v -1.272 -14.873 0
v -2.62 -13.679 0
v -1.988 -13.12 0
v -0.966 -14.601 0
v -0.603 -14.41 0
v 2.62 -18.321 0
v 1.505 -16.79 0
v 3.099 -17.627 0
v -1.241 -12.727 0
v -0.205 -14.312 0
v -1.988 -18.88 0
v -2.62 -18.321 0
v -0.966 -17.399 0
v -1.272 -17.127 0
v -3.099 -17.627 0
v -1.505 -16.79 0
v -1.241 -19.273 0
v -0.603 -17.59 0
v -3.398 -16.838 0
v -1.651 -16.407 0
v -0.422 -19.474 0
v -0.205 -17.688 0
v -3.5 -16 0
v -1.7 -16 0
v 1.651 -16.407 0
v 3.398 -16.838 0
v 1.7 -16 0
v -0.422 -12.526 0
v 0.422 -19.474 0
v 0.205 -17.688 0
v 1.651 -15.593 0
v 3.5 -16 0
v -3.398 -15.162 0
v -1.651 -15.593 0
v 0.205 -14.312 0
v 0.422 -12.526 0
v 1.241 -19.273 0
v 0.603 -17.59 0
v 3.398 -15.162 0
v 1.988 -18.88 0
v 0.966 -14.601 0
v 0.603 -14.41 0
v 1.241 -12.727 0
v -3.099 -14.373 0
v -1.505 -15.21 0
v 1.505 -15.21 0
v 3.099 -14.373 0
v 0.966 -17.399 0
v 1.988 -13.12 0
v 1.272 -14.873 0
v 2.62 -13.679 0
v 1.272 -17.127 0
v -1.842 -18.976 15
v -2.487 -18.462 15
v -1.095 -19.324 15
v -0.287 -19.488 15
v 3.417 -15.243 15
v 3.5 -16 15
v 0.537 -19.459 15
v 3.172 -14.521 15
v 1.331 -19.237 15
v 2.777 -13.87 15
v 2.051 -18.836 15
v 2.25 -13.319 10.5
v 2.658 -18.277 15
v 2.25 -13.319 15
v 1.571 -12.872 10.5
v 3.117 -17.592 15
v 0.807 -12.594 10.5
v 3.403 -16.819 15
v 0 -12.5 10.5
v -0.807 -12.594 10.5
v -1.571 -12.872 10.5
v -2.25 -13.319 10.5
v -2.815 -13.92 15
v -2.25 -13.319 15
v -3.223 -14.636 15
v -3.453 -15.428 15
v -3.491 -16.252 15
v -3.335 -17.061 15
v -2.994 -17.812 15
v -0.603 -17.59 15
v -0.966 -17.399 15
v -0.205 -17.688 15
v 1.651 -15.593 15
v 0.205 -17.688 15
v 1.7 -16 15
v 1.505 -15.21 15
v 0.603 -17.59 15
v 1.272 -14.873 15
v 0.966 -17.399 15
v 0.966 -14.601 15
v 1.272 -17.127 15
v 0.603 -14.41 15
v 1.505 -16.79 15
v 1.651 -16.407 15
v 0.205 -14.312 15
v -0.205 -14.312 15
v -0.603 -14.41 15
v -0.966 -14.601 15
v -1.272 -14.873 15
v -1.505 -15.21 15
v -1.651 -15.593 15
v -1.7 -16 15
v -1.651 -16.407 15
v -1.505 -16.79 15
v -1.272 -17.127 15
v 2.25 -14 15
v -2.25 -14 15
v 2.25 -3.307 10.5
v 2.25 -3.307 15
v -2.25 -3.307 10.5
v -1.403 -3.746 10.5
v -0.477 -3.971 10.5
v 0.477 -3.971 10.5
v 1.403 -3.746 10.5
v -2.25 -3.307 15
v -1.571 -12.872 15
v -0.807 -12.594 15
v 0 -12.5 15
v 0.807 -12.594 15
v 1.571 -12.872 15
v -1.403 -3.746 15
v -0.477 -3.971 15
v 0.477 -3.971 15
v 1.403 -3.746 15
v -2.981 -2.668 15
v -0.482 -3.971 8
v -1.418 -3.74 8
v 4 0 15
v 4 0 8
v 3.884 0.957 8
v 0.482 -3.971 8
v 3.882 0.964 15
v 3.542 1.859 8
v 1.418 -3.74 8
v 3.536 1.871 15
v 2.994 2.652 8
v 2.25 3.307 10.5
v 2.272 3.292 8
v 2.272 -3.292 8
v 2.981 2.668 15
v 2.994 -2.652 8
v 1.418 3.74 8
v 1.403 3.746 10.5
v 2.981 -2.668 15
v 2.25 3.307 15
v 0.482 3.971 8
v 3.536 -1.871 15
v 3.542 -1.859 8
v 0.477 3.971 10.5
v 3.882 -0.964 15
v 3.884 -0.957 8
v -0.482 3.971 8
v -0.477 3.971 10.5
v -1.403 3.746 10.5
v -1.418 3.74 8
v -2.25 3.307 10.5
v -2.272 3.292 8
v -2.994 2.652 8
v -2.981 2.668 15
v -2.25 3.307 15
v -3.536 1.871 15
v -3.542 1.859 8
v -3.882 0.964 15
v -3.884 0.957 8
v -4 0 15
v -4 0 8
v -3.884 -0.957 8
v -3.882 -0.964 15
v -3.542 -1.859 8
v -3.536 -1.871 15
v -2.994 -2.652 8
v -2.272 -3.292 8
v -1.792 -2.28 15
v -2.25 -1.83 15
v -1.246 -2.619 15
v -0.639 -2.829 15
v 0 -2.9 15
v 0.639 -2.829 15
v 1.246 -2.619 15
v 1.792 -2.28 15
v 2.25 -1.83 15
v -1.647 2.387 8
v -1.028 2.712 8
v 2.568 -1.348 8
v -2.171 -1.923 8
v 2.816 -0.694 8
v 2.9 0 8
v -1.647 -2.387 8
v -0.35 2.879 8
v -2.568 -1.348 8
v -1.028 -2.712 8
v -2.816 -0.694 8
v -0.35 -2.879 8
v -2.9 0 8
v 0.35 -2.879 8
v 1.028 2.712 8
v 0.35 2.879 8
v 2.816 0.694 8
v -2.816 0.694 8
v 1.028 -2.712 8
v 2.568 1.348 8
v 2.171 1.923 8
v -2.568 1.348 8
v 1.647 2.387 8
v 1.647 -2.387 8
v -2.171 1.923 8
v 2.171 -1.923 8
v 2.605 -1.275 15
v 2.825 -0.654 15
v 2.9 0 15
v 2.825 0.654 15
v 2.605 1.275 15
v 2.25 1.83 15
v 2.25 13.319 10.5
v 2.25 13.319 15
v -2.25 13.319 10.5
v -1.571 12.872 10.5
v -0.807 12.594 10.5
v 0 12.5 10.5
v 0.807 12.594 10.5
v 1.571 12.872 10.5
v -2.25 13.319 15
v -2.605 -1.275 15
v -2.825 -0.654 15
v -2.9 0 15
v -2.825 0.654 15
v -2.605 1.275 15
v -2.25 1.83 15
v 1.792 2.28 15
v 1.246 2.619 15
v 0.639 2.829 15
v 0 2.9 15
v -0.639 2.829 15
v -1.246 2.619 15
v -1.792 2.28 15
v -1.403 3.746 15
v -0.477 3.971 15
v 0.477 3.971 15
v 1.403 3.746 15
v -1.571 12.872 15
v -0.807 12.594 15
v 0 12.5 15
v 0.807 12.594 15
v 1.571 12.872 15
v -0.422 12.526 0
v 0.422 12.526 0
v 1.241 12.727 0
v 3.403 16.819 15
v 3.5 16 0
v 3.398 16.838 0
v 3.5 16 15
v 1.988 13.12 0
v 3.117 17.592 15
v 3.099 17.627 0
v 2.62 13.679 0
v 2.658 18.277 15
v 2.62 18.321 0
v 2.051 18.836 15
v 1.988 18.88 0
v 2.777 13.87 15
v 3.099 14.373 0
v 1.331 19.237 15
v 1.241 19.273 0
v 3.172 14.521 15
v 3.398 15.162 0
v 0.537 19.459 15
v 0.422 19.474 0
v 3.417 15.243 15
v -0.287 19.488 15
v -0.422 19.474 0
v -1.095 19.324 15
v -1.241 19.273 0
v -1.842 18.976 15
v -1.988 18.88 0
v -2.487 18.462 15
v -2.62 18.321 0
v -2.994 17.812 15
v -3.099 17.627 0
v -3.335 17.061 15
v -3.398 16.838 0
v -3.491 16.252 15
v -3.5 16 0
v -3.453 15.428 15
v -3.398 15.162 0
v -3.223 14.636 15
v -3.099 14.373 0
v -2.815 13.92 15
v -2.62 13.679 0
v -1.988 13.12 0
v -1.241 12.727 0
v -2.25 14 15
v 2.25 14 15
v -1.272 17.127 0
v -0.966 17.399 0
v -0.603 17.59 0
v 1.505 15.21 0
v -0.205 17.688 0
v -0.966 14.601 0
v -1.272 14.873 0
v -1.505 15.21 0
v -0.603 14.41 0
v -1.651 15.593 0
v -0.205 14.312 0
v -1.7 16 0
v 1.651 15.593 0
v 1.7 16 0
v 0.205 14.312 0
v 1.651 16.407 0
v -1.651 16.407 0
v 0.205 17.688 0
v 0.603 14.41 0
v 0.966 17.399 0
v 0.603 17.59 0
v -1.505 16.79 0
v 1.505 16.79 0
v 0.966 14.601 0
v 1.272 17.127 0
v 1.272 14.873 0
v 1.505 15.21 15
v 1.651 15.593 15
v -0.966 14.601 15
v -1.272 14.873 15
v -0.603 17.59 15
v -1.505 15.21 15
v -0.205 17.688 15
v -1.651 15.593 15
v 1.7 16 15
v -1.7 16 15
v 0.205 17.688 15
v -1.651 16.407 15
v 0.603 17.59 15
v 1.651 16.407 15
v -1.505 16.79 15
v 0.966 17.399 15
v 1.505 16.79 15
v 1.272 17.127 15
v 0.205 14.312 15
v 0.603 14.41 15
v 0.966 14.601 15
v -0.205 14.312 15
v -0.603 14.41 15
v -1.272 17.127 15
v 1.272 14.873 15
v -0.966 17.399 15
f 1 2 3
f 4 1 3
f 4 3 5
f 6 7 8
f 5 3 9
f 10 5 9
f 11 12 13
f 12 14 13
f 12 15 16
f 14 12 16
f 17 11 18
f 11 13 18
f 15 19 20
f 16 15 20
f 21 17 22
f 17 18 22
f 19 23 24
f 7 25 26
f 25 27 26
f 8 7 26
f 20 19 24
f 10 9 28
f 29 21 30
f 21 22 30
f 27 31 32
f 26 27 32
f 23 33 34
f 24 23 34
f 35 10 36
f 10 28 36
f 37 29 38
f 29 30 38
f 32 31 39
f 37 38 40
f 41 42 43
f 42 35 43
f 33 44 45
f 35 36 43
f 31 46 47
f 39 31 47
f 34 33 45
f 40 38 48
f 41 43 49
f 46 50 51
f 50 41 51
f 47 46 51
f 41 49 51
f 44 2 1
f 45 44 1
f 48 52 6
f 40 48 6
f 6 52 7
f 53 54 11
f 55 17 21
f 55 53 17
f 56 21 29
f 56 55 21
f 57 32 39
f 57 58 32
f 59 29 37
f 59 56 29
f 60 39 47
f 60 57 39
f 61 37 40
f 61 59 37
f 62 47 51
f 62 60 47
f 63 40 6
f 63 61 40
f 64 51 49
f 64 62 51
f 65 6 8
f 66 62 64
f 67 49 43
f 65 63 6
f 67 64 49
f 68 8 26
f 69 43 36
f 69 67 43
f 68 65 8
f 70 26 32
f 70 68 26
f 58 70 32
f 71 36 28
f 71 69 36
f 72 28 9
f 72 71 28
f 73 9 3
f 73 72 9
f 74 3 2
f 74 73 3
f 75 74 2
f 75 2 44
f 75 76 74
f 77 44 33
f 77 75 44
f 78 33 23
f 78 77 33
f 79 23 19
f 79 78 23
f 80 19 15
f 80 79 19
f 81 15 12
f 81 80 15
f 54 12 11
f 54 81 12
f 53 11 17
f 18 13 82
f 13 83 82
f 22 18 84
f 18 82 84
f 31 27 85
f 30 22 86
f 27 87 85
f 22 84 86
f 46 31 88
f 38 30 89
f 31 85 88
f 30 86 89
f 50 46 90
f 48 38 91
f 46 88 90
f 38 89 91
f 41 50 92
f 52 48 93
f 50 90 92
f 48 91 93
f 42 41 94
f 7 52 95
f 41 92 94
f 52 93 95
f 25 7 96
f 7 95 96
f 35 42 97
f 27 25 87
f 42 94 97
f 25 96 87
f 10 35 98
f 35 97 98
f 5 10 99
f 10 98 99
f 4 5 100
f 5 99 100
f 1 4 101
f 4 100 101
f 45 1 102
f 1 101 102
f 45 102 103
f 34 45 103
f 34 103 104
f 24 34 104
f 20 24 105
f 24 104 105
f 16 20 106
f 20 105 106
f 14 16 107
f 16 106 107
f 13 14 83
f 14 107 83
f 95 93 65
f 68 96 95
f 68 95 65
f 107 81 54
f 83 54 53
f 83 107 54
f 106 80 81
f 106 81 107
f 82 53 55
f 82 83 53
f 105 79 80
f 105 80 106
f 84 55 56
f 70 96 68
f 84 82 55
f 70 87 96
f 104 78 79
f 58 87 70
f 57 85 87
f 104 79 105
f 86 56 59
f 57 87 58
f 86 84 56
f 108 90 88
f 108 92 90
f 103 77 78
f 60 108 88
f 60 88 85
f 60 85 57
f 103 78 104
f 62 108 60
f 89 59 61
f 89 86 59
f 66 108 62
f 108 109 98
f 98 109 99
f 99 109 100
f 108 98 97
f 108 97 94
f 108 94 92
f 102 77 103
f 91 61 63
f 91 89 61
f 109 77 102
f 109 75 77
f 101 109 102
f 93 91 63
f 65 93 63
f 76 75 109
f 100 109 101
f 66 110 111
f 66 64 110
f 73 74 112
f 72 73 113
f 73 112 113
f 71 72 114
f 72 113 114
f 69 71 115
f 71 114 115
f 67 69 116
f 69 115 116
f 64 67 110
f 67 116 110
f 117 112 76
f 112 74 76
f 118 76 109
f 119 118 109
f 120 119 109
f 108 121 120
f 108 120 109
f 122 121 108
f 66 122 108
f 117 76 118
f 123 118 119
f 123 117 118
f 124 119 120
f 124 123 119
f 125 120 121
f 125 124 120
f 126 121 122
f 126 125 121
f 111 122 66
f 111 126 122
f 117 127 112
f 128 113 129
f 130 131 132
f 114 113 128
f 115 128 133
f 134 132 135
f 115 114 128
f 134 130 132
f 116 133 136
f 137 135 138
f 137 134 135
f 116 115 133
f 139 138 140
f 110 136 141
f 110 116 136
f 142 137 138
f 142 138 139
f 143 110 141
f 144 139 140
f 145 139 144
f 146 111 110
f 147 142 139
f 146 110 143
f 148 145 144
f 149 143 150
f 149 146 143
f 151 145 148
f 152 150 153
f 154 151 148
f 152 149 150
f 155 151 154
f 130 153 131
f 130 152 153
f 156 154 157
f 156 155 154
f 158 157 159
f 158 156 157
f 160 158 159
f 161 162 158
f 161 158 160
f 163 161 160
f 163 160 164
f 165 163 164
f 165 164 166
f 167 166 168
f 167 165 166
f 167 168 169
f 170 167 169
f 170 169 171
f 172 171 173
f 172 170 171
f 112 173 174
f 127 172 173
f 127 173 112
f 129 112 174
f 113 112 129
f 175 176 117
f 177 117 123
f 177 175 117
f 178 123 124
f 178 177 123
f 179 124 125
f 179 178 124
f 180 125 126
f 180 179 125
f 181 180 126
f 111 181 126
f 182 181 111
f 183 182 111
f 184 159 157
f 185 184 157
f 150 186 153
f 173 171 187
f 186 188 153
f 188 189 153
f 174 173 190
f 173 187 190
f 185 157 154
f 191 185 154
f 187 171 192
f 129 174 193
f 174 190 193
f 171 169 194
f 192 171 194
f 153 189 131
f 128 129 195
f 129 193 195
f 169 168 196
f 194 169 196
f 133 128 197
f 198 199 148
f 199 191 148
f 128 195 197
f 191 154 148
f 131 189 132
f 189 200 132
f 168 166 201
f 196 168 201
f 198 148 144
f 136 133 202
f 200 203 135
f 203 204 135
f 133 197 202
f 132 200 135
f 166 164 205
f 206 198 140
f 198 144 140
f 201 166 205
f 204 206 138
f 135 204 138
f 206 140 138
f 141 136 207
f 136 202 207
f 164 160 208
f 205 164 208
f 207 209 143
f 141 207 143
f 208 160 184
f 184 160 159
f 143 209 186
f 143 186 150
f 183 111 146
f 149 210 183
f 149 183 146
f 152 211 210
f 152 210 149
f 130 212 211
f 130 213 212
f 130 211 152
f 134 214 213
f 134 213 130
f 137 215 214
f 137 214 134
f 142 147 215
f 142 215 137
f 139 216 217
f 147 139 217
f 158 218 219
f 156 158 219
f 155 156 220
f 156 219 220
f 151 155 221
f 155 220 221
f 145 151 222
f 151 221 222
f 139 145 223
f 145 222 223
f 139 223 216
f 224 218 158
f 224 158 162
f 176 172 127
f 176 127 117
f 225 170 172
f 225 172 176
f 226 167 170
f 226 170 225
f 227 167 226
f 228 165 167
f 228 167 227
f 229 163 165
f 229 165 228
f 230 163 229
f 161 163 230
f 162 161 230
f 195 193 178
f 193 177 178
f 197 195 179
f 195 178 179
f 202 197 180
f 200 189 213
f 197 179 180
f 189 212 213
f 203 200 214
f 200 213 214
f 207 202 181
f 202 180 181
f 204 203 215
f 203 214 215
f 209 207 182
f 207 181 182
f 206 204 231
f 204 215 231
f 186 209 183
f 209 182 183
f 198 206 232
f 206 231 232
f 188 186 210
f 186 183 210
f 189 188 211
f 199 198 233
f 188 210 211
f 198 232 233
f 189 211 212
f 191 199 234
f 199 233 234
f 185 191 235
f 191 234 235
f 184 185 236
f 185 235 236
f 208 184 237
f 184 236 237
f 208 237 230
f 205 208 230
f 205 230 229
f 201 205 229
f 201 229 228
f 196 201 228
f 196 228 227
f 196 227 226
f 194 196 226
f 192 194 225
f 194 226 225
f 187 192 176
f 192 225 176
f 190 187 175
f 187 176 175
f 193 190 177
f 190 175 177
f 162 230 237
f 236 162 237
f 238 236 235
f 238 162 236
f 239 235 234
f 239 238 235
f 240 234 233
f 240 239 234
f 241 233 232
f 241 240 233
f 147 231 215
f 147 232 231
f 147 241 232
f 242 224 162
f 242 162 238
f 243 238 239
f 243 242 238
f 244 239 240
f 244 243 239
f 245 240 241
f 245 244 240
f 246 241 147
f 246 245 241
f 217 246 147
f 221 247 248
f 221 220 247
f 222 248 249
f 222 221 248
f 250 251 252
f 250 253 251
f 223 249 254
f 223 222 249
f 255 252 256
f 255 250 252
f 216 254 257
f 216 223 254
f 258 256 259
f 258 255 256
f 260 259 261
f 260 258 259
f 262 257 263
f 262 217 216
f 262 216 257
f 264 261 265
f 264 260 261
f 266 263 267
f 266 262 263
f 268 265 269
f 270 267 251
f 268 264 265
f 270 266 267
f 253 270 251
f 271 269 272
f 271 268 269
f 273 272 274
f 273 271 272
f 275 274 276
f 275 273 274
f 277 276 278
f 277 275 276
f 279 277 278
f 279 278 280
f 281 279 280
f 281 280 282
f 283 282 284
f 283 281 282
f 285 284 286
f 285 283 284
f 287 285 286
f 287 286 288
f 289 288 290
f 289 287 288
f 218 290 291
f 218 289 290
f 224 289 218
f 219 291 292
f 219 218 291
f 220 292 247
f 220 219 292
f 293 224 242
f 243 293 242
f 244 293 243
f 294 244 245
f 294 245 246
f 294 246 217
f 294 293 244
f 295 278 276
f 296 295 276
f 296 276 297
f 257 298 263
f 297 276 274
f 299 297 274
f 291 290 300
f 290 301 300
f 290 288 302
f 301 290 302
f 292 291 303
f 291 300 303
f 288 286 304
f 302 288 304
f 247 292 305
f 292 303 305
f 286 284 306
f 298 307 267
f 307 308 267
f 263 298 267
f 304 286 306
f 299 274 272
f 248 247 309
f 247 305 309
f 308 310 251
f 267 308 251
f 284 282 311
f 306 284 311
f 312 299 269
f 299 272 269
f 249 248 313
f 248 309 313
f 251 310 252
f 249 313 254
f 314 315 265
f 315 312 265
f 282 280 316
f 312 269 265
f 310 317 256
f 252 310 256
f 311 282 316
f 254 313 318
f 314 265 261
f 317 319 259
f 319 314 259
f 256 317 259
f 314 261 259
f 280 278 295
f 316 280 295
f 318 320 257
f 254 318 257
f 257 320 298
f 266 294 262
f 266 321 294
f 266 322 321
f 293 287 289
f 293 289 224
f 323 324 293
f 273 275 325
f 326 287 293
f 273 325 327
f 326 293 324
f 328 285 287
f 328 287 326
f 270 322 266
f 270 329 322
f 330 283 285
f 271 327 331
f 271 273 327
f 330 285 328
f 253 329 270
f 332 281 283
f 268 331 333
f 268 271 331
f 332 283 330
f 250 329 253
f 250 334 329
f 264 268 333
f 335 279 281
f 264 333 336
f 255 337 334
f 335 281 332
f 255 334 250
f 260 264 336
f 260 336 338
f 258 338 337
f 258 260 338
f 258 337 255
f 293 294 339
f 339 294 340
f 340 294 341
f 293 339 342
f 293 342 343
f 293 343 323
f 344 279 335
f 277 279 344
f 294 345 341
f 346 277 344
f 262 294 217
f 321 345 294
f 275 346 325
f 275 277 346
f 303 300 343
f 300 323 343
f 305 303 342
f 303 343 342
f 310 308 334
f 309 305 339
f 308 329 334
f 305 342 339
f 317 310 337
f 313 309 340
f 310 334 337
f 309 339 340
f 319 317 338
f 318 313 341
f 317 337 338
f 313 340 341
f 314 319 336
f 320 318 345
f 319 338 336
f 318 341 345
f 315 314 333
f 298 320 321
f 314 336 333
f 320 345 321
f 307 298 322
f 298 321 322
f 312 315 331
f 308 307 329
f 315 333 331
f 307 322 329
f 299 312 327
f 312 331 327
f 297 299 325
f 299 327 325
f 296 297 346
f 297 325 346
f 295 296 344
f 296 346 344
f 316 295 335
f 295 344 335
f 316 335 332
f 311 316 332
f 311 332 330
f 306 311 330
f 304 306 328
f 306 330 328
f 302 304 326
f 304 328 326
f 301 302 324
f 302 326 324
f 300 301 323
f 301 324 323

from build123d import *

# Parameters (mm, degrees)
CYLINDER001_R     = 1.7
CYLINDER001_DEPTH = 15
CYLINDER_R        = 3.5
CYLINDER_DEPTH    = 15
CYLINDER002_R     = 2.9
CYLINDER002_DEPTH = 7
BOX_W             = 4.5
BOX_H             = 28
BOX_DEPTH         = 4.5
CYLINDER003_R     = 4
CYLINDER003_DEPTH = 7


with BuildPart() as leg_inner:
    # Cylinder001 → Cylinder001 (new body)
    with BuildSketch(Plane(origin=(0, -16, 0), x_dir=(1, 0, 0), z_dir=(0, 0, 1))):
        Circle(CYLINDER001_R)
    extrude(amount=CYLINDER001_DEPTH)


with BuildPart() as leg_outer:
    # Cylinder → Cylinder (new body)
    with BuildSketch(Plane(origin=(0, -16, 0), x_dir=(1, 0, 0), z_dir=(0, 0, 1))):
        Circle(CYLINDER_R)
    extrude(amount=CYLINDER_DEPTH)


with BuildPart() as rough_leg_r:
    # Cut001 base: copy of leg_outer
    add(leg_outer.part)

    # Cut001: cut leg_inner
    add(leg_inner.part, mode=Mode.SUBTRACT)


with BuildPart() as rough_leg_r_1:
    # Cut001 placement: moved
    add(rough_leg_r.part.moved(Location((0, 32, 0))))


with BuildPart() as tubing_bore:
    # Cylinder002 → Cylinder002 (new body)
    with BuildSketch(Plane.XY.offset(8)):
        Circle(CYLINDER002_R)
    extrude(amount=CYLINDER002_DEPTH)


with BuildPart() as rough_arch:
    # Box → Box (new body)
    with BuildSketch(Plane(origin=(-2.25, -14, 10.5), x_dir=(1, 0, 0), z_dir=(0, 0, 1))):
        with Locations((2.25, 14)):
            Rectangle(BOX_W, BOX_H)
    extrude(amount=BOX_DEPTH)


with BuildPart() as center:
    # Cylinder003 → Cylinder003 (new body)
    with BuildSketch(Plane.XY.offset(8)):
        Circle(CYLINDER003_R)
    extrude(amount=CYLINDER003_DEPTH)

    # Fusion: union rough_arch
    add(rough_arch.part)

    # Cut002: cut tubing_bore
    add(tubing_bore.part, mode=Mode.SUBTRACT)


with BuildPart() as rough_tubing_support:
    # Cut base: copy of leg_outer
    add(leg_outer.part)

    # Cut: cut leg_inner
    add(leg_inner.part, mode=Mode.SUBTRACT)

    # Fusion001: union rough_leg_r, center
    add(rough_leg_r_1.part)
    add(center.part)


solid = rough_tubing_support.part
